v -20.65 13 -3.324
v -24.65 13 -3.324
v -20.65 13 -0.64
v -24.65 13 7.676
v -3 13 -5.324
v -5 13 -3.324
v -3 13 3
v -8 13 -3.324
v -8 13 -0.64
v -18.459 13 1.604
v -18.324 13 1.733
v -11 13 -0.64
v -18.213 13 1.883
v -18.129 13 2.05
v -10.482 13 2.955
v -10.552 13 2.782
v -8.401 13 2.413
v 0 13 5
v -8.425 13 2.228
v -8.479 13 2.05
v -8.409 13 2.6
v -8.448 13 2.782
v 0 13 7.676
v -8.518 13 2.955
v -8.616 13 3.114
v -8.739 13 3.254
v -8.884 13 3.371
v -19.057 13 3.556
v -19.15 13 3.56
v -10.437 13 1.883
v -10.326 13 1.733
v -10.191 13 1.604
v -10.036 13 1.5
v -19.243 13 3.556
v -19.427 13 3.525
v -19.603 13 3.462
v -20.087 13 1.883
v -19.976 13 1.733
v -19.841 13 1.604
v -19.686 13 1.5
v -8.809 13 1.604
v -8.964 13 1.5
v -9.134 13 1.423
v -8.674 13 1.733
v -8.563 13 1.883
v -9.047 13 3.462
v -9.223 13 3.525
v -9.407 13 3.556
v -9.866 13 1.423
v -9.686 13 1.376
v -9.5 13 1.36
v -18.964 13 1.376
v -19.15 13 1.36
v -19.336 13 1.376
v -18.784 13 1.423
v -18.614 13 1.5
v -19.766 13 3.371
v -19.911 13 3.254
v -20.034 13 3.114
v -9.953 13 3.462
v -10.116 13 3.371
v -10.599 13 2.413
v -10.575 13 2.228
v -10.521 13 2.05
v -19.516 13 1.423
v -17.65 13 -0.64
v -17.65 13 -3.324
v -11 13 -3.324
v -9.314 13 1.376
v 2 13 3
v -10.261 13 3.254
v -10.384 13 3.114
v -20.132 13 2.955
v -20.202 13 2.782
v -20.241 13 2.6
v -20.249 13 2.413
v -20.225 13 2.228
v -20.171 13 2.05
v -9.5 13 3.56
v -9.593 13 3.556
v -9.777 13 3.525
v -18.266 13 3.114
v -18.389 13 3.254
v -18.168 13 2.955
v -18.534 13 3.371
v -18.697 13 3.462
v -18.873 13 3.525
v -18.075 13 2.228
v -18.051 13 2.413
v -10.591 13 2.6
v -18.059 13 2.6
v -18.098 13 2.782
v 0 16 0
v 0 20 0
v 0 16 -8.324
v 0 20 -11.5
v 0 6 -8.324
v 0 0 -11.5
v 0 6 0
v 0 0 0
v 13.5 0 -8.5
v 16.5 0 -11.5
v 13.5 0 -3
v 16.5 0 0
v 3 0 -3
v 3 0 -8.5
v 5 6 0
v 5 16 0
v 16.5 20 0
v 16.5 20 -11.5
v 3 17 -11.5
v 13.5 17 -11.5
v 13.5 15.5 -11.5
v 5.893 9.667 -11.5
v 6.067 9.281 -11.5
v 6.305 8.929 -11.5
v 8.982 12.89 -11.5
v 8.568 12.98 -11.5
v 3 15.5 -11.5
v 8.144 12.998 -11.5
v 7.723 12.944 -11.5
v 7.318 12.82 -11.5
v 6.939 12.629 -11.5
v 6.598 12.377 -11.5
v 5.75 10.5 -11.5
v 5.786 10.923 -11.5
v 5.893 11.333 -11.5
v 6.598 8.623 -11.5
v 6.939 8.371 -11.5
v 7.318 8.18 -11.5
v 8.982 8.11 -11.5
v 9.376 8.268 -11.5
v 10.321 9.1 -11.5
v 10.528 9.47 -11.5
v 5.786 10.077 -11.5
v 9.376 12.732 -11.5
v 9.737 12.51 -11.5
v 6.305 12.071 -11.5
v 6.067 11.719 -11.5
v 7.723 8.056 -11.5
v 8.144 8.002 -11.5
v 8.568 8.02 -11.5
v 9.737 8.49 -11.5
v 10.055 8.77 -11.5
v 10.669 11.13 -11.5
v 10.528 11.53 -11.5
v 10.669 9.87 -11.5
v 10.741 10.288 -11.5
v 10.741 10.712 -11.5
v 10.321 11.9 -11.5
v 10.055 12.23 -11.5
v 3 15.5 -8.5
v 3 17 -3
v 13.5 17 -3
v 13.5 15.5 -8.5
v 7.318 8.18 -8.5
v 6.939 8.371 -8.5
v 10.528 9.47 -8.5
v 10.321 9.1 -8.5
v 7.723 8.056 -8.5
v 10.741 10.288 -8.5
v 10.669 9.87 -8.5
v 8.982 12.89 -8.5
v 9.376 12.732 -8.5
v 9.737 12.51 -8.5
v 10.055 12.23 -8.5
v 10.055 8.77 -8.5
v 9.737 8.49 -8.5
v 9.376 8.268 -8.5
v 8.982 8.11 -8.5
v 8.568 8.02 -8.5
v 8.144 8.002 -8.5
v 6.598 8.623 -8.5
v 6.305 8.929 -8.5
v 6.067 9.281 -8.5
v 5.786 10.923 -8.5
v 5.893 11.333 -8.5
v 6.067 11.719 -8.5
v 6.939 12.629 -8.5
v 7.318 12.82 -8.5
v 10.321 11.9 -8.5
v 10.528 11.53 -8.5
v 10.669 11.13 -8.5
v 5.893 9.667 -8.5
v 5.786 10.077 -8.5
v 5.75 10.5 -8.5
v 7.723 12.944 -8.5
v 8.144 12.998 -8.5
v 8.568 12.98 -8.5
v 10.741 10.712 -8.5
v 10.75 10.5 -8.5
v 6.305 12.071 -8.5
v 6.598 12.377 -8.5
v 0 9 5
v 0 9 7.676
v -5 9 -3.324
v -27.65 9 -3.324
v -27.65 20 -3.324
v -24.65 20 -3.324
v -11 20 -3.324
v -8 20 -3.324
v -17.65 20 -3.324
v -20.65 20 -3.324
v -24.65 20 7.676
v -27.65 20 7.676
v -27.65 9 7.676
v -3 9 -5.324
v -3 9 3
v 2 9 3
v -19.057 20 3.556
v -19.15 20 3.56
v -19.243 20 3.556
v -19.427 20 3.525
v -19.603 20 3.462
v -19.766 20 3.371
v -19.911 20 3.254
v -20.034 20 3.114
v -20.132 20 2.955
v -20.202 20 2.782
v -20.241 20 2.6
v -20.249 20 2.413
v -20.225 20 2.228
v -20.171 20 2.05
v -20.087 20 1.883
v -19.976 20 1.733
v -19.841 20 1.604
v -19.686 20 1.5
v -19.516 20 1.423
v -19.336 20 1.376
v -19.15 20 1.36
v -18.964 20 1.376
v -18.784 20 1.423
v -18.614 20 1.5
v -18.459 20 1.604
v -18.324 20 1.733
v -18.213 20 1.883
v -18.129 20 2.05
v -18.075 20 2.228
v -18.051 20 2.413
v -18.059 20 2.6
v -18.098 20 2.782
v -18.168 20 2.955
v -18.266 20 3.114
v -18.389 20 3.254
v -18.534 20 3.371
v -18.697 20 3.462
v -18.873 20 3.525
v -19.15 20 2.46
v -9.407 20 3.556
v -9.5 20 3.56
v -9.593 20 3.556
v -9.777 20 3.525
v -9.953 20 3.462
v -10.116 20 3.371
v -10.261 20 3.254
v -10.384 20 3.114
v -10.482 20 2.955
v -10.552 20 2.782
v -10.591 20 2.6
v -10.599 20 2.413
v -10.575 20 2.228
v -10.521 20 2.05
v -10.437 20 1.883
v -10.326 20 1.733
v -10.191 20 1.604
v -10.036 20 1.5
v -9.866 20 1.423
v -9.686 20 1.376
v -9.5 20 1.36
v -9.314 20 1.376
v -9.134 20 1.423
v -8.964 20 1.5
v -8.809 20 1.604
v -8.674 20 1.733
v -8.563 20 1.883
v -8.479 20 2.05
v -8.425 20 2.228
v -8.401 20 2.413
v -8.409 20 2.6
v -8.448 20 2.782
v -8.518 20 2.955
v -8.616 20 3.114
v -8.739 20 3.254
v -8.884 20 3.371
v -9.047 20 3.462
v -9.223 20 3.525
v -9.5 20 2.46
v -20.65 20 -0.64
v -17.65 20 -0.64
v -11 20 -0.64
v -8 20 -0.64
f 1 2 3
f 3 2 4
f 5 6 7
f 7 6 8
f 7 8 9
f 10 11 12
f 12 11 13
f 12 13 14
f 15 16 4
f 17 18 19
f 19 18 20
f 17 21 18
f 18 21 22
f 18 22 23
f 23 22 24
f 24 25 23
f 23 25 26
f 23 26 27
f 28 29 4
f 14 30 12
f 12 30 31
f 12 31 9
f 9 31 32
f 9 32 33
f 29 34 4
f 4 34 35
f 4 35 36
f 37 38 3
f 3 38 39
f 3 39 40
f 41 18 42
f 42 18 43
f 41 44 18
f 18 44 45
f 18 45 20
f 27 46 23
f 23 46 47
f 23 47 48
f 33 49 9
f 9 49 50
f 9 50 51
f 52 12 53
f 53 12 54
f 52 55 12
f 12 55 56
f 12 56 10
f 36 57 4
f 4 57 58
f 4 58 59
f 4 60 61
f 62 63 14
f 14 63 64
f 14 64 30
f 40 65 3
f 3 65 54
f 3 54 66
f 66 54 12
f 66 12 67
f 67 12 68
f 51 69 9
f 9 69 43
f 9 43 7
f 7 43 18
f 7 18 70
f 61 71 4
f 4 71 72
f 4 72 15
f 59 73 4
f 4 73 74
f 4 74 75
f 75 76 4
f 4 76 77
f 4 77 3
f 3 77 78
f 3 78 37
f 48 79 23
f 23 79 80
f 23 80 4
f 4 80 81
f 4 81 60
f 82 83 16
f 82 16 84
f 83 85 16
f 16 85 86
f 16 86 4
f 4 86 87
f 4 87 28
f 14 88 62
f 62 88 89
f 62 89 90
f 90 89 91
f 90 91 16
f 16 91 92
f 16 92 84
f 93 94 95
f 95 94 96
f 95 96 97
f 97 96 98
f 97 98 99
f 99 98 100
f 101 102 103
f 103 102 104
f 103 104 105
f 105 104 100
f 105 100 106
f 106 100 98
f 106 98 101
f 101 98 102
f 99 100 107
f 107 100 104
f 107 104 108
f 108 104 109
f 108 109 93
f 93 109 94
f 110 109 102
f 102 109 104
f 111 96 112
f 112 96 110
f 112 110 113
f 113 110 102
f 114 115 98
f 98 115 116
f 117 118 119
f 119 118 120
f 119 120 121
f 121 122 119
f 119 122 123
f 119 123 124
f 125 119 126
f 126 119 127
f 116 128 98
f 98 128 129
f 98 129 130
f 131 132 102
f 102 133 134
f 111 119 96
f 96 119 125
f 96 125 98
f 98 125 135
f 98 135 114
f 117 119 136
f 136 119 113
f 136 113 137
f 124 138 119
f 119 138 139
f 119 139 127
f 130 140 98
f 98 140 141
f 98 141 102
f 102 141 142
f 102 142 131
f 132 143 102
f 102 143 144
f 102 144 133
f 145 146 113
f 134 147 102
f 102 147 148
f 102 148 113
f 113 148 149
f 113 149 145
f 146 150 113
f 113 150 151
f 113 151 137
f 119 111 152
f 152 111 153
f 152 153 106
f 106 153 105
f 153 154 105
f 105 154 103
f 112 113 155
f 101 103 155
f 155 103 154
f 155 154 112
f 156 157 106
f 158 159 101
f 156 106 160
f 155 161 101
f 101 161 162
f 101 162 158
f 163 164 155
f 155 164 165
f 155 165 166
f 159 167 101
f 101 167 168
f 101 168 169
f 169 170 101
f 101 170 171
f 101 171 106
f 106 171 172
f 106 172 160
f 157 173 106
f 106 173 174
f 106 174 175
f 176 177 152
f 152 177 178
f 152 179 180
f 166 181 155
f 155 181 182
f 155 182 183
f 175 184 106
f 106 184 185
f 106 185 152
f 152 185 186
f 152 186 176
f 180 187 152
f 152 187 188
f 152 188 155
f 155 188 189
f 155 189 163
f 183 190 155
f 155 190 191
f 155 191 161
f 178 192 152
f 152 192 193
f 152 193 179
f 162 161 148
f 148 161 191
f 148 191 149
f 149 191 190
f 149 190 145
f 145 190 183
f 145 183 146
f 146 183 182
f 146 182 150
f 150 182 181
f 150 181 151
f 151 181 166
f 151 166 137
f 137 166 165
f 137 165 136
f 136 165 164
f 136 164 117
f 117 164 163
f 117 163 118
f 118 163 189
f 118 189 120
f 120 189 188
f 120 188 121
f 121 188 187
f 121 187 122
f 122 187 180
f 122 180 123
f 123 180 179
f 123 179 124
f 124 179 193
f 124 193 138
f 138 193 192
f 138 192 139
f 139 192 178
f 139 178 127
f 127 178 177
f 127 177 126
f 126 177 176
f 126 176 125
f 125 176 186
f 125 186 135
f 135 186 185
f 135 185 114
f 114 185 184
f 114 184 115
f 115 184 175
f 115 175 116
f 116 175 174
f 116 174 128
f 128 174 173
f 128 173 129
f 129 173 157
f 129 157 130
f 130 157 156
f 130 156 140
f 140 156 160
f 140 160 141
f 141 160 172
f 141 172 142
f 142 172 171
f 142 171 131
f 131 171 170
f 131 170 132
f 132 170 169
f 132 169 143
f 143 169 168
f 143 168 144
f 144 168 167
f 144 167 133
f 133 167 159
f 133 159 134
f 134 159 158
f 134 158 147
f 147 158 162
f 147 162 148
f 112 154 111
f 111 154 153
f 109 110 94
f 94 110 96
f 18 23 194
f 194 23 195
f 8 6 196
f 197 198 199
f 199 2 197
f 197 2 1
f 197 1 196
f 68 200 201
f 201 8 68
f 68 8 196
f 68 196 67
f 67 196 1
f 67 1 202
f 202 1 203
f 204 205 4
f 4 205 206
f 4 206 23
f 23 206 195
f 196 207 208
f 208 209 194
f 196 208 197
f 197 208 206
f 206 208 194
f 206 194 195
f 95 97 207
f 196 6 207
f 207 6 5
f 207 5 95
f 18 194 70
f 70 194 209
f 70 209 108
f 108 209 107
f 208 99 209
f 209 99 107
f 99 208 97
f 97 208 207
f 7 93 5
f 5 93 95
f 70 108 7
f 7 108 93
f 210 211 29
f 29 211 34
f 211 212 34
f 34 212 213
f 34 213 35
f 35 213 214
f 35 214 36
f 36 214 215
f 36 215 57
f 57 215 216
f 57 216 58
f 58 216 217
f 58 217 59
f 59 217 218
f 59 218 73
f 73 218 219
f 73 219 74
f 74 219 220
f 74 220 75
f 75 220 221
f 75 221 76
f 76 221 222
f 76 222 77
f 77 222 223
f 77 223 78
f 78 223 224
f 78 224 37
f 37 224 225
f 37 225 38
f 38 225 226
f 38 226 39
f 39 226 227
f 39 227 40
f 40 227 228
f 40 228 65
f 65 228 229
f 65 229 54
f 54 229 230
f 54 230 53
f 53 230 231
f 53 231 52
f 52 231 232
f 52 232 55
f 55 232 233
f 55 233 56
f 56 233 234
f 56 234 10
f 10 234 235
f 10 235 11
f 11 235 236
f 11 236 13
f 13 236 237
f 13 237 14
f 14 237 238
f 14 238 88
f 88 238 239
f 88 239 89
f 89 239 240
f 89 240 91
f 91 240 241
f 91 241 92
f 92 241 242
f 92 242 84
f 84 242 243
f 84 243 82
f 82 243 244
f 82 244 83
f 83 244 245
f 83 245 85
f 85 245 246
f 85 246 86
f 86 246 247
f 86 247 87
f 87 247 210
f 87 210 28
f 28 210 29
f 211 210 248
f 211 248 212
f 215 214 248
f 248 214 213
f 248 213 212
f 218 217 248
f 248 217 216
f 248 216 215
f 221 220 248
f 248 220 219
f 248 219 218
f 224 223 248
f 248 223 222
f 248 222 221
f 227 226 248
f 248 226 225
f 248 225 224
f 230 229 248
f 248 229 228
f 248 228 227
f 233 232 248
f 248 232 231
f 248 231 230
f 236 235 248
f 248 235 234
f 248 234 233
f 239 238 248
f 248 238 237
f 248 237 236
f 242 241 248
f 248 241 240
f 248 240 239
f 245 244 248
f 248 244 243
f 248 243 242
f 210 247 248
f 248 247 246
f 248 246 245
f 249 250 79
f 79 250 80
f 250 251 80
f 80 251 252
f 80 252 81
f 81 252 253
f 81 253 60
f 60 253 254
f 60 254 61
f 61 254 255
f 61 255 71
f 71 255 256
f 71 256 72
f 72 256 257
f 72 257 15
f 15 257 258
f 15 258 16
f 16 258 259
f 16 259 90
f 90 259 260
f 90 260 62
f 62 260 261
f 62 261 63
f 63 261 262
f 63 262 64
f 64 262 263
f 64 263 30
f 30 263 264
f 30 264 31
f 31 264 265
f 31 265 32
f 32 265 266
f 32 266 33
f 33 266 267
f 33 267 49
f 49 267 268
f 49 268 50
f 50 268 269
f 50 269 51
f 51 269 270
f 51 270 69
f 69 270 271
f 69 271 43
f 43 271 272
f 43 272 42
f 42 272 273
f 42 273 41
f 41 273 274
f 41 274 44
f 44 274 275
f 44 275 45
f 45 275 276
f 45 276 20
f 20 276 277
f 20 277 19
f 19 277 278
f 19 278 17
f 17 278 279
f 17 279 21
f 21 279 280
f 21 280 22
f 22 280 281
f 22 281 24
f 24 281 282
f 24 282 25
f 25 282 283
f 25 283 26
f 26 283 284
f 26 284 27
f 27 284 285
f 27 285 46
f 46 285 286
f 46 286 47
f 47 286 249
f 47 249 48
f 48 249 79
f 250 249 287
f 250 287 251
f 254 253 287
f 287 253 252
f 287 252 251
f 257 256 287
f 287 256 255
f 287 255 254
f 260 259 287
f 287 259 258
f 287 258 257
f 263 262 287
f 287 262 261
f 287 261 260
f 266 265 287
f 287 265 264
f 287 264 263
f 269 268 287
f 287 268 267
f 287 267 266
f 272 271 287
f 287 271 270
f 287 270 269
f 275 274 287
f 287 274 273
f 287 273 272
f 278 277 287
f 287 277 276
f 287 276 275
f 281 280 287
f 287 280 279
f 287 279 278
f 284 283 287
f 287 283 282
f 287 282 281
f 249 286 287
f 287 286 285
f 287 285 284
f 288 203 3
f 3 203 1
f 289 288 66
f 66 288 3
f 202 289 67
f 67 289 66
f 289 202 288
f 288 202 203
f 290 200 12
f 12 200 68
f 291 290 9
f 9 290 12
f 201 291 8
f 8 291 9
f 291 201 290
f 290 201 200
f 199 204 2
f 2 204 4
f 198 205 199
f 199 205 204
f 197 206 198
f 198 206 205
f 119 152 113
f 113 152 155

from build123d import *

# Parameters (mm, degrees)
SKETCH1_W           = 16.5
SKETCH1_H           = 11.5
SKETCH1_W_2         = 10.5
SKETCH1_H_2         = 5.5
BOSS_EXTRUDE1_DEPTH = 17
CUT_EXTRUDE1_REACH  = 28.334
SKETCH2_R           = 2.5
SKETCH3_W           = 16.5
SKETCH3_H           = 11.5
BOSS_EXTRUDE2_DEPTH = 3
BOSS_EXTRUDE3_START = -11
SKETCH4_W           = 21.75
SKETCH4_H           = 11
BOSS_EXTRUDE3_DEPTH = 4
CHAMFER1_SIZE       = 5
CHAMFER2_SIZE       = 3
SKETCH5_R           = 1.1
SKETCH5_W           = 3
SKETCH5_H           = 2.684
BOSS_EXTRUDE4_DEPTH = 7
BOSS_EXTRUDE5_DEPTH = 11
CUT_EXTRUDE2_REACH  = 41.144
SKETCH7_W           = 10.5
SKETCH7_H           = 1.5


with BuildPart() as part:
    # Sketch1 → Boss-Extrude1 (new body)
    with BuildSketch(Plane(origin=(0, 0, 0), x_dir=(1, 0, 0), z_dir=(0, 1, 0))):
        with Locations((8.25, 5.75)):
            Rectangle(SKETCH1_W, SKETCH1_H)
        with Locations((8.25, 5.75)):
            Rectangle(SKETCH1_W_2, SKETCH1_H_2, mode=Mode.SUBTRACT)
    extrude(amount=BOSS_EXTRUDE1_DEPTH)

    # Sketch2 → Cut-Extrude1 (cut, up to next)
    with BuildSketch(Plane(origin=(0, 0, -11.5), x_dir=(-1, 0, 0), z_dir=(0, 0, -1)), mode=Mode.PRIVATE) as cut_extrude1_sk1:
        with Locations((-8.25, 10.5)):
            Circle(SKETCH2_R)
    cut_extrude1_tool1 = extrude(cut_extrude1_sk1.sketch, amount=-CUT_EXTRUDE1_REACH, mode=Mode.PRIVATE) & part.part
    add(cut_extrude1_tool1.solids().sort_by_distance((8.25, 10.5, -11.5))[0], mode=Mode.SUBTRACT)

    # Sketch3 → Boss-Extrude2 (add)
    with BuildSketch(Plane(origin=(0, 17, 0), x_dir=(1, 0, 0), z_dir=(0, 1, 0))):
        with Locations((8.25, 5.75)):
            Rectangle(SKETCH3_W, SKETCH3_H)
    extrude(amount=BOSS_EXTRUDE2_DEPTH)

    # Sketch4 → Boss-Extrude3 (add)
    with BuildSketch(Plane(origin=(0, 20, 0), x_dir=(1, 0, 0), z_dir=(0, 1, 0)).offset(BOSS_EXTRUDE3_START)):
        with Locations((-10.875, -2.176)):
            Rectangle(SKETCH4_W, SKETCH4_H)
    extrude(amount=BOSS_EXTRUDE3_DEPTH)

    # Chamfer1
    chamfer1_edges = [part.edges().sort_by_distance(p)[0] for p in [
        (0, 11, 0),
        (0, 11, -3.324),
    ]]
    chamfer(chamfer1_edges, length=CHAMFER1_SIZE)

    # Chamfer2
    chamfer2_edges = [part.edges().sort_by_distance(p)[0] for p in [
        (0, 13, -4.162),
        (0, 9, -4.162),
        (2.5, 13, 0),
        (2.5, 9, 0),
    ]]
    chamfer(chamfer2_edges, length=CHAMFER2_SIZE)

    # Sketch5 → Boss-Extrude4 (add)
    with BuildSketch(Plane(origin=(0, 13, 0), x_dir=(1, 0, 0), z_dir=(0, 1, 0))):
        with Locations(Location((-19.15, -2.46, 0), (0, 0, 270))):
            Circle(SKETCH5_R)
        with Locations(Location((-9.5, -2.46, 0), (0, 0, 270))):
            Circle(SKETCH5_R)
        with Locations((-19.15, 1.982)):
            Rectangle(SKETCH5_W, SKETCH5_H)
        with Locations((-9.5, 1.982)):
            Rectangle(SKETCH5_W, SKETCH5_H)
    extrude(amount=BOSS_EXTRUDE4_DEPTH)

    # Sketch6 → Boss-Extrude5 (add)
    with BuildSketch(Plane.XY.offset(7.676)):
        Polygon((-21.75, 13), (-24.65, 13), (-24.65, 20), (-27.65, 20), (-27.65, 9), (-21.75, 9), align=None)
    extrude(amount=-BOSS_EXTRUDE5_DEPTH)

    # Sketch7 → Cut-Extrude2 (cut, up to next)
    with BuildSketch(Plane(origin=(0, 0, -11.5), x_dir=(-1, 0, 0), z_dir=(0, 0, -1)), mode=Mode.PRIVATE) as cut_extrude2_sk1:
        with Locations((-8.25, 16.25)):
            Rectangle(SKETCH7_W, SKETCH7_H)
    cut_extrude2_tool1 = extrude(cut_extrude2_sk1.sketch, amount=-CUT_EXTRUDE2_REACH, mode=Mode.PRIVATE) & part.part
    add(cut_extrude2_tool1.solids().sort_by_distance((8.25, 16.25, -11.5))[0], mode=Mode.SUBTRACT)


solid = part.part
